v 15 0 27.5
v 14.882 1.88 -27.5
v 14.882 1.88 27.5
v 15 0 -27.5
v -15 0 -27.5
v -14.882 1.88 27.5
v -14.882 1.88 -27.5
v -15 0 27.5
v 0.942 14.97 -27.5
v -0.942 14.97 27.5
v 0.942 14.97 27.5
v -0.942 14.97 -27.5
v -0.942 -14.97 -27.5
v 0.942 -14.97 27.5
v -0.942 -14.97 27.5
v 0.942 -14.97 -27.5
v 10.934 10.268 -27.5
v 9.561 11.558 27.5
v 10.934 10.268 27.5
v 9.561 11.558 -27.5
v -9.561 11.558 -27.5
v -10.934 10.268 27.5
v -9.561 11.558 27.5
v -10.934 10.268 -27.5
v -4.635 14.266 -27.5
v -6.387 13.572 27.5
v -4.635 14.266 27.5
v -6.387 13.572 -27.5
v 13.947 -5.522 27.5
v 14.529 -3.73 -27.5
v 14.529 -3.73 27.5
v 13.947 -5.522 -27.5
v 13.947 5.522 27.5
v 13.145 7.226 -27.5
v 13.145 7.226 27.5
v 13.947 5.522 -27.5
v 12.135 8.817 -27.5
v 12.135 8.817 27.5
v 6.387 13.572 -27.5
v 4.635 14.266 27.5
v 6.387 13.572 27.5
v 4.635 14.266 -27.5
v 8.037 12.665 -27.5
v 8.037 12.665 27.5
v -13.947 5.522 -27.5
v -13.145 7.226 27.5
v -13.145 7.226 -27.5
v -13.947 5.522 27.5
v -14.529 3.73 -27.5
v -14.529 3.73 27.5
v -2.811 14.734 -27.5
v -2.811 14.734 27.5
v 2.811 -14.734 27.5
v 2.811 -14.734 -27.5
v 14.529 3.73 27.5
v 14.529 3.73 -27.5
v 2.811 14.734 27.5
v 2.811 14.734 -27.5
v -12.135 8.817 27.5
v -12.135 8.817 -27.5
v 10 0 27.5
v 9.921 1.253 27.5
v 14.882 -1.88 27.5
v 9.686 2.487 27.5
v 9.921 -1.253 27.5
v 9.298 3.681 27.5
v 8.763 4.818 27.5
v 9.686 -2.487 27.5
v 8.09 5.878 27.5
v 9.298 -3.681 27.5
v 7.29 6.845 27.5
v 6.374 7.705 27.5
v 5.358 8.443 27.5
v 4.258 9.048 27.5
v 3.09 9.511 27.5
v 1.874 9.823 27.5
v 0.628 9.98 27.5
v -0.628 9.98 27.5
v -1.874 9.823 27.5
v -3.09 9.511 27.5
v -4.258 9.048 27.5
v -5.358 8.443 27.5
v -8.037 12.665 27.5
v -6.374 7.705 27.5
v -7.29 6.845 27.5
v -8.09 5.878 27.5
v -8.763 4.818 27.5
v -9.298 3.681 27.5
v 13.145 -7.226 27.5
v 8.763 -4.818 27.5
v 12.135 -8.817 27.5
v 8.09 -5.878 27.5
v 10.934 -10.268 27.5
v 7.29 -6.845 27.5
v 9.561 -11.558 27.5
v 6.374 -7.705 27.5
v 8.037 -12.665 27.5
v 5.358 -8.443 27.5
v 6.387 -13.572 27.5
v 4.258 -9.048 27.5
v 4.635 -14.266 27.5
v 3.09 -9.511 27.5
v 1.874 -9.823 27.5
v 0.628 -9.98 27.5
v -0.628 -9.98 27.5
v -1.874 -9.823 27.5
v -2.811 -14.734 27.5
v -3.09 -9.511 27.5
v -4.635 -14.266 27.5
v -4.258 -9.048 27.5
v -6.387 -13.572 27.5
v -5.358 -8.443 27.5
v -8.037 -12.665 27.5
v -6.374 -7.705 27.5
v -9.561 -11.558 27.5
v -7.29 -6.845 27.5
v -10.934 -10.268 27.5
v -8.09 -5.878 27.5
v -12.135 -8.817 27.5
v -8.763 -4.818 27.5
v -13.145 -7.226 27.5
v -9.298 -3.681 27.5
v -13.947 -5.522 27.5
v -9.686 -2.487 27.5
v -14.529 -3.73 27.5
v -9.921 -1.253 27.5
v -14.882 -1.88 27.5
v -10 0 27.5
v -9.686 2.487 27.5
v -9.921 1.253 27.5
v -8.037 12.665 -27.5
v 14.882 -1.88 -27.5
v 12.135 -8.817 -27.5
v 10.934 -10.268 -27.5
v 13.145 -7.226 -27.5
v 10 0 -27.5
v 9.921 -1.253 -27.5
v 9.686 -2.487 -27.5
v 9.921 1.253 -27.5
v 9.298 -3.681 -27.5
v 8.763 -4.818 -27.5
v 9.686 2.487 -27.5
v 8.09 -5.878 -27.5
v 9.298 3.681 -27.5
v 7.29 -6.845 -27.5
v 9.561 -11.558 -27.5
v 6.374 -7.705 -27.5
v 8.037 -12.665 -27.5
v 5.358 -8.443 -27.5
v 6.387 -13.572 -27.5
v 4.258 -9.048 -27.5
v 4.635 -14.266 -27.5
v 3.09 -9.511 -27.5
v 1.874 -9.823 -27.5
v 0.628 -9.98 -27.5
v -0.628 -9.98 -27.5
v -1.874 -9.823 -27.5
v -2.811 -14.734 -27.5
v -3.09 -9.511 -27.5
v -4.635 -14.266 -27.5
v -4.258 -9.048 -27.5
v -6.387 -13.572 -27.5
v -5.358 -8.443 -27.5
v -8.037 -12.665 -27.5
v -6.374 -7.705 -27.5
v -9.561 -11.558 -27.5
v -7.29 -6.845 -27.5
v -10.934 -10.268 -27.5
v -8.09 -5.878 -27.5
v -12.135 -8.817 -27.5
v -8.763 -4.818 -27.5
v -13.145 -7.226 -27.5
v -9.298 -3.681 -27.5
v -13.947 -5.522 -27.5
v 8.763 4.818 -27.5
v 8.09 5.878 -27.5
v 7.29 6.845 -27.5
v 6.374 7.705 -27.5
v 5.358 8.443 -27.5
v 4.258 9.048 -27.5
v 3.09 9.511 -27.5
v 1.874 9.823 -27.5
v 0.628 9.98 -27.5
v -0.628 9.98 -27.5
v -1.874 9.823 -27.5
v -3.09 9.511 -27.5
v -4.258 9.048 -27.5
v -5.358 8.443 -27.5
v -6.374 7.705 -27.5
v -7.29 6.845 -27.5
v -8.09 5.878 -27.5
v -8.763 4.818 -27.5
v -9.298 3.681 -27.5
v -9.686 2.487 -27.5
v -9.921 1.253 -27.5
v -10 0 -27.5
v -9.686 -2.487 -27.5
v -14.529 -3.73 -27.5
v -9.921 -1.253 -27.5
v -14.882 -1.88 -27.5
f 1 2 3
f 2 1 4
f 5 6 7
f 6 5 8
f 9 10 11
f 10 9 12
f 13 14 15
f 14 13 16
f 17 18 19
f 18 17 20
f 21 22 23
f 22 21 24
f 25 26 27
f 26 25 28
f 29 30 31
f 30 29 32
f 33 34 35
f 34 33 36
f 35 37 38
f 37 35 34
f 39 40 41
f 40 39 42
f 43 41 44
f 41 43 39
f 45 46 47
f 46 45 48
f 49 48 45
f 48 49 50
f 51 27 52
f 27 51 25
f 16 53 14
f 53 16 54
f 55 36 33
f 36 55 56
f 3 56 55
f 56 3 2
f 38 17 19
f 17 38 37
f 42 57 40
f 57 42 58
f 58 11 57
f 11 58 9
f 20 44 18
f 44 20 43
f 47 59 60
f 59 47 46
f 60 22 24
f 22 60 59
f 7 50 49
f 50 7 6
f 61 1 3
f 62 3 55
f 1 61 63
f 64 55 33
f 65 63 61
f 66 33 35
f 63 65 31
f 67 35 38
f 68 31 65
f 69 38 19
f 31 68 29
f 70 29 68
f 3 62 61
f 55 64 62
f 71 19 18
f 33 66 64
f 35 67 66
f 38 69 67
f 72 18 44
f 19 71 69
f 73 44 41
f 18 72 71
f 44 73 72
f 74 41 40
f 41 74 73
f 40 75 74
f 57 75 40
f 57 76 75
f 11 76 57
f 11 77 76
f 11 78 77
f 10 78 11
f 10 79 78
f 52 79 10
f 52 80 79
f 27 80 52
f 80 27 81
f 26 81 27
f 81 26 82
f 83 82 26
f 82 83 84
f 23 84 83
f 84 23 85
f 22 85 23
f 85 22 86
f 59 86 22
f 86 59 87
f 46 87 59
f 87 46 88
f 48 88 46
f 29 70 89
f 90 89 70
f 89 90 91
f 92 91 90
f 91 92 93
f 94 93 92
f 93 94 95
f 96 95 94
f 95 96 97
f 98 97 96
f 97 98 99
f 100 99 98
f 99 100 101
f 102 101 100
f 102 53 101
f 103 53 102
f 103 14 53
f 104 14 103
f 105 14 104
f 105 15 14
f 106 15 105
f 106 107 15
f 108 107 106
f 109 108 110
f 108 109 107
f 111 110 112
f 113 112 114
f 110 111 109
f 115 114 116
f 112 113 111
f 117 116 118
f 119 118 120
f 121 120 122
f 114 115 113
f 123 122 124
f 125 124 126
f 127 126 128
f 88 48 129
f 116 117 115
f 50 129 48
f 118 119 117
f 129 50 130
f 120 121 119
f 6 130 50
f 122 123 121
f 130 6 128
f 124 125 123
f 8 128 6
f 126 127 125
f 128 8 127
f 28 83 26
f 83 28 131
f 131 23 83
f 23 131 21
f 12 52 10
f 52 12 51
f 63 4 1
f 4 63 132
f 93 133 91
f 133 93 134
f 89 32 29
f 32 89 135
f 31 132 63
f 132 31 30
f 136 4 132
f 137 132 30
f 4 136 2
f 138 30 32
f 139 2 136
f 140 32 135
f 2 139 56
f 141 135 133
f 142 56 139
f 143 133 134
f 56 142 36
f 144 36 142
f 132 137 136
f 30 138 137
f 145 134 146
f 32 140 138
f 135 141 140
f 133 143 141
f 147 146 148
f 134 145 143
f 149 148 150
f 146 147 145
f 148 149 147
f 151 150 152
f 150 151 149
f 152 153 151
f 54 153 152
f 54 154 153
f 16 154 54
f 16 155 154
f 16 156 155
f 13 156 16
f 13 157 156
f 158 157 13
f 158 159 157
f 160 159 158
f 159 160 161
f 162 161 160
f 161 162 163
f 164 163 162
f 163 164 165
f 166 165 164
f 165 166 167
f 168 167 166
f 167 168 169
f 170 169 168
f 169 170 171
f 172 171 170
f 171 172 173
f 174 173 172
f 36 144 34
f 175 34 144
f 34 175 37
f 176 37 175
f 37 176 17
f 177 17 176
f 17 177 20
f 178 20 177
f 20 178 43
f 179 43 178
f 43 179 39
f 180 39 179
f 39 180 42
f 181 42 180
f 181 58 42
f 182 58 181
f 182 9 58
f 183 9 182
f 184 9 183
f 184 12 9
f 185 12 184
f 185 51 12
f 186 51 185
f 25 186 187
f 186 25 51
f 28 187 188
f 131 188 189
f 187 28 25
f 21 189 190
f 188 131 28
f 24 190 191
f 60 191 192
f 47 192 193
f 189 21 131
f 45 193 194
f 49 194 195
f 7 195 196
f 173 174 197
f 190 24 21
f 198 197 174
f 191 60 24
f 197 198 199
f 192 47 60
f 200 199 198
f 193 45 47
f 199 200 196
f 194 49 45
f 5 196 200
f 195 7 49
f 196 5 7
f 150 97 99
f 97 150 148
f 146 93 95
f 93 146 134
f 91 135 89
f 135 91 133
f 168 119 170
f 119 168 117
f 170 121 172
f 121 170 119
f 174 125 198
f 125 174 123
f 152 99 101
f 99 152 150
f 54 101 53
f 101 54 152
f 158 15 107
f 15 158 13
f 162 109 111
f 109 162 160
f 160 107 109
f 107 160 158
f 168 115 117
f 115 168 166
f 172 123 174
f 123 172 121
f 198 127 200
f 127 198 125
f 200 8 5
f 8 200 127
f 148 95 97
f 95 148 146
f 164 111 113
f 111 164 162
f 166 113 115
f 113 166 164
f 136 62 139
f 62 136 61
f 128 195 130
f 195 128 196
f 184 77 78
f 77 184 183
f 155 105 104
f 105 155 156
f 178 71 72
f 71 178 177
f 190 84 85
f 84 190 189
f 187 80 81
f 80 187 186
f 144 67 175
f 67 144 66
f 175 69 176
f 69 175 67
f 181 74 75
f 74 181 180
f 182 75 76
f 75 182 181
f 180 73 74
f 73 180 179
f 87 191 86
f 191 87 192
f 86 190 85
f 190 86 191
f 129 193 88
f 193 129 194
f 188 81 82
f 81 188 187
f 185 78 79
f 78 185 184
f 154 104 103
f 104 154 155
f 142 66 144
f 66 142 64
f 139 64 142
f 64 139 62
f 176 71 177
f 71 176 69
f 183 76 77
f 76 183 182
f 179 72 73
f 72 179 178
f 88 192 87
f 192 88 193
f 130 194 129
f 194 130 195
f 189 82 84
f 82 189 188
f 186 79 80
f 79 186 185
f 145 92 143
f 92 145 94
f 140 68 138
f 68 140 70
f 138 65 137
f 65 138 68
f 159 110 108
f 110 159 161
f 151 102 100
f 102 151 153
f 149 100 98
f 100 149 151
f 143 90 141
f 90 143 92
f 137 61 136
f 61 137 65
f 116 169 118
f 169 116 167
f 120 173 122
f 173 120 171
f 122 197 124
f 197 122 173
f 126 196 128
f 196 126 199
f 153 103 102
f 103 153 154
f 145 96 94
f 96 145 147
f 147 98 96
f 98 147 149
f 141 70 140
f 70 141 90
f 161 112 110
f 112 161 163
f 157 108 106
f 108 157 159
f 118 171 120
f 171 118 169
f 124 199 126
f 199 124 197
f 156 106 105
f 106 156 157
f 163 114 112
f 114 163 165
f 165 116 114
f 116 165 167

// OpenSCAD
$fn = 50;


difference() {
	union() {
		translate(v = [0, 0, -27.5000000000]) {
			cylinder(h = 55, r = 15.0000000000);
		}
	}
	union() {
		translate(v = [0, 0, -100.0000000000]) {
			cylinder(h = 200, r = 10);
		}
	}
}
